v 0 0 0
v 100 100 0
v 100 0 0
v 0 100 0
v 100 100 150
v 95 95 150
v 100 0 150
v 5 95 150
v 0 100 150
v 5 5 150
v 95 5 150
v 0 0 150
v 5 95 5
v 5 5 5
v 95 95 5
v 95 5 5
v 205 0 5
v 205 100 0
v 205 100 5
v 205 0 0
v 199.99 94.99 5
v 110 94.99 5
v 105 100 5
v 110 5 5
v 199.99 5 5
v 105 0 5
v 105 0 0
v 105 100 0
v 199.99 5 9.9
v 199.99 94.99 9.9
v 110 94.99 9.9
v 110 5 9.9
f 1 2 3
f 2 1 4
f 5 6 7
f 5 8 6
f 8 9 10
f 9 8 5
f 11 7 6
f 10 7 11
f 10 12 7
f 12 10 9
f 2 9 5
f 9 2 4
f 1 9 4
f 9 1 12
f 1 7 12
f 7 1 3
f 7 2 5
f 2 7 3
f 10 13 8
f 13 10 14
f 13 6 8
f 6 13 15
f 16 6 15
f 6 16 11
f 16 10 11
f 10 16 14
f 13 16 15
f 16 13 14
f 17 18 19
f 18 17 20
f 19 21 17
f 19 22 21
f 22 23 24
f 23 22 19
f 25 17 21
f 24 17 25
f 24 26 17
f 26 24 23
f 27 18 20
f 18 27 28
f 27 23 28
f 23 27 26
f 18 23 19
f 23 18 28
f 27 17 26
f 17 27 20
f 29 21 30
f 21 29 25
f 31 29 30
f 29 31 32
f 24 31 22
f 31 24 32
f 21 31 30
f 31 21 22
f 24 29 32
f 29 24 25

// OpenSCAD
linear_extrude(150) {

difference() {
square([100, 100]);
offset(delta =-5 ) 
    square([100, 100]);
}
}

cube([100, 100, 5]);

translate([105, 0, 0])
    cube([100,100,5]);
translate([110, 5, 4.9])
    cube([89.99, 89.99, 5]);
